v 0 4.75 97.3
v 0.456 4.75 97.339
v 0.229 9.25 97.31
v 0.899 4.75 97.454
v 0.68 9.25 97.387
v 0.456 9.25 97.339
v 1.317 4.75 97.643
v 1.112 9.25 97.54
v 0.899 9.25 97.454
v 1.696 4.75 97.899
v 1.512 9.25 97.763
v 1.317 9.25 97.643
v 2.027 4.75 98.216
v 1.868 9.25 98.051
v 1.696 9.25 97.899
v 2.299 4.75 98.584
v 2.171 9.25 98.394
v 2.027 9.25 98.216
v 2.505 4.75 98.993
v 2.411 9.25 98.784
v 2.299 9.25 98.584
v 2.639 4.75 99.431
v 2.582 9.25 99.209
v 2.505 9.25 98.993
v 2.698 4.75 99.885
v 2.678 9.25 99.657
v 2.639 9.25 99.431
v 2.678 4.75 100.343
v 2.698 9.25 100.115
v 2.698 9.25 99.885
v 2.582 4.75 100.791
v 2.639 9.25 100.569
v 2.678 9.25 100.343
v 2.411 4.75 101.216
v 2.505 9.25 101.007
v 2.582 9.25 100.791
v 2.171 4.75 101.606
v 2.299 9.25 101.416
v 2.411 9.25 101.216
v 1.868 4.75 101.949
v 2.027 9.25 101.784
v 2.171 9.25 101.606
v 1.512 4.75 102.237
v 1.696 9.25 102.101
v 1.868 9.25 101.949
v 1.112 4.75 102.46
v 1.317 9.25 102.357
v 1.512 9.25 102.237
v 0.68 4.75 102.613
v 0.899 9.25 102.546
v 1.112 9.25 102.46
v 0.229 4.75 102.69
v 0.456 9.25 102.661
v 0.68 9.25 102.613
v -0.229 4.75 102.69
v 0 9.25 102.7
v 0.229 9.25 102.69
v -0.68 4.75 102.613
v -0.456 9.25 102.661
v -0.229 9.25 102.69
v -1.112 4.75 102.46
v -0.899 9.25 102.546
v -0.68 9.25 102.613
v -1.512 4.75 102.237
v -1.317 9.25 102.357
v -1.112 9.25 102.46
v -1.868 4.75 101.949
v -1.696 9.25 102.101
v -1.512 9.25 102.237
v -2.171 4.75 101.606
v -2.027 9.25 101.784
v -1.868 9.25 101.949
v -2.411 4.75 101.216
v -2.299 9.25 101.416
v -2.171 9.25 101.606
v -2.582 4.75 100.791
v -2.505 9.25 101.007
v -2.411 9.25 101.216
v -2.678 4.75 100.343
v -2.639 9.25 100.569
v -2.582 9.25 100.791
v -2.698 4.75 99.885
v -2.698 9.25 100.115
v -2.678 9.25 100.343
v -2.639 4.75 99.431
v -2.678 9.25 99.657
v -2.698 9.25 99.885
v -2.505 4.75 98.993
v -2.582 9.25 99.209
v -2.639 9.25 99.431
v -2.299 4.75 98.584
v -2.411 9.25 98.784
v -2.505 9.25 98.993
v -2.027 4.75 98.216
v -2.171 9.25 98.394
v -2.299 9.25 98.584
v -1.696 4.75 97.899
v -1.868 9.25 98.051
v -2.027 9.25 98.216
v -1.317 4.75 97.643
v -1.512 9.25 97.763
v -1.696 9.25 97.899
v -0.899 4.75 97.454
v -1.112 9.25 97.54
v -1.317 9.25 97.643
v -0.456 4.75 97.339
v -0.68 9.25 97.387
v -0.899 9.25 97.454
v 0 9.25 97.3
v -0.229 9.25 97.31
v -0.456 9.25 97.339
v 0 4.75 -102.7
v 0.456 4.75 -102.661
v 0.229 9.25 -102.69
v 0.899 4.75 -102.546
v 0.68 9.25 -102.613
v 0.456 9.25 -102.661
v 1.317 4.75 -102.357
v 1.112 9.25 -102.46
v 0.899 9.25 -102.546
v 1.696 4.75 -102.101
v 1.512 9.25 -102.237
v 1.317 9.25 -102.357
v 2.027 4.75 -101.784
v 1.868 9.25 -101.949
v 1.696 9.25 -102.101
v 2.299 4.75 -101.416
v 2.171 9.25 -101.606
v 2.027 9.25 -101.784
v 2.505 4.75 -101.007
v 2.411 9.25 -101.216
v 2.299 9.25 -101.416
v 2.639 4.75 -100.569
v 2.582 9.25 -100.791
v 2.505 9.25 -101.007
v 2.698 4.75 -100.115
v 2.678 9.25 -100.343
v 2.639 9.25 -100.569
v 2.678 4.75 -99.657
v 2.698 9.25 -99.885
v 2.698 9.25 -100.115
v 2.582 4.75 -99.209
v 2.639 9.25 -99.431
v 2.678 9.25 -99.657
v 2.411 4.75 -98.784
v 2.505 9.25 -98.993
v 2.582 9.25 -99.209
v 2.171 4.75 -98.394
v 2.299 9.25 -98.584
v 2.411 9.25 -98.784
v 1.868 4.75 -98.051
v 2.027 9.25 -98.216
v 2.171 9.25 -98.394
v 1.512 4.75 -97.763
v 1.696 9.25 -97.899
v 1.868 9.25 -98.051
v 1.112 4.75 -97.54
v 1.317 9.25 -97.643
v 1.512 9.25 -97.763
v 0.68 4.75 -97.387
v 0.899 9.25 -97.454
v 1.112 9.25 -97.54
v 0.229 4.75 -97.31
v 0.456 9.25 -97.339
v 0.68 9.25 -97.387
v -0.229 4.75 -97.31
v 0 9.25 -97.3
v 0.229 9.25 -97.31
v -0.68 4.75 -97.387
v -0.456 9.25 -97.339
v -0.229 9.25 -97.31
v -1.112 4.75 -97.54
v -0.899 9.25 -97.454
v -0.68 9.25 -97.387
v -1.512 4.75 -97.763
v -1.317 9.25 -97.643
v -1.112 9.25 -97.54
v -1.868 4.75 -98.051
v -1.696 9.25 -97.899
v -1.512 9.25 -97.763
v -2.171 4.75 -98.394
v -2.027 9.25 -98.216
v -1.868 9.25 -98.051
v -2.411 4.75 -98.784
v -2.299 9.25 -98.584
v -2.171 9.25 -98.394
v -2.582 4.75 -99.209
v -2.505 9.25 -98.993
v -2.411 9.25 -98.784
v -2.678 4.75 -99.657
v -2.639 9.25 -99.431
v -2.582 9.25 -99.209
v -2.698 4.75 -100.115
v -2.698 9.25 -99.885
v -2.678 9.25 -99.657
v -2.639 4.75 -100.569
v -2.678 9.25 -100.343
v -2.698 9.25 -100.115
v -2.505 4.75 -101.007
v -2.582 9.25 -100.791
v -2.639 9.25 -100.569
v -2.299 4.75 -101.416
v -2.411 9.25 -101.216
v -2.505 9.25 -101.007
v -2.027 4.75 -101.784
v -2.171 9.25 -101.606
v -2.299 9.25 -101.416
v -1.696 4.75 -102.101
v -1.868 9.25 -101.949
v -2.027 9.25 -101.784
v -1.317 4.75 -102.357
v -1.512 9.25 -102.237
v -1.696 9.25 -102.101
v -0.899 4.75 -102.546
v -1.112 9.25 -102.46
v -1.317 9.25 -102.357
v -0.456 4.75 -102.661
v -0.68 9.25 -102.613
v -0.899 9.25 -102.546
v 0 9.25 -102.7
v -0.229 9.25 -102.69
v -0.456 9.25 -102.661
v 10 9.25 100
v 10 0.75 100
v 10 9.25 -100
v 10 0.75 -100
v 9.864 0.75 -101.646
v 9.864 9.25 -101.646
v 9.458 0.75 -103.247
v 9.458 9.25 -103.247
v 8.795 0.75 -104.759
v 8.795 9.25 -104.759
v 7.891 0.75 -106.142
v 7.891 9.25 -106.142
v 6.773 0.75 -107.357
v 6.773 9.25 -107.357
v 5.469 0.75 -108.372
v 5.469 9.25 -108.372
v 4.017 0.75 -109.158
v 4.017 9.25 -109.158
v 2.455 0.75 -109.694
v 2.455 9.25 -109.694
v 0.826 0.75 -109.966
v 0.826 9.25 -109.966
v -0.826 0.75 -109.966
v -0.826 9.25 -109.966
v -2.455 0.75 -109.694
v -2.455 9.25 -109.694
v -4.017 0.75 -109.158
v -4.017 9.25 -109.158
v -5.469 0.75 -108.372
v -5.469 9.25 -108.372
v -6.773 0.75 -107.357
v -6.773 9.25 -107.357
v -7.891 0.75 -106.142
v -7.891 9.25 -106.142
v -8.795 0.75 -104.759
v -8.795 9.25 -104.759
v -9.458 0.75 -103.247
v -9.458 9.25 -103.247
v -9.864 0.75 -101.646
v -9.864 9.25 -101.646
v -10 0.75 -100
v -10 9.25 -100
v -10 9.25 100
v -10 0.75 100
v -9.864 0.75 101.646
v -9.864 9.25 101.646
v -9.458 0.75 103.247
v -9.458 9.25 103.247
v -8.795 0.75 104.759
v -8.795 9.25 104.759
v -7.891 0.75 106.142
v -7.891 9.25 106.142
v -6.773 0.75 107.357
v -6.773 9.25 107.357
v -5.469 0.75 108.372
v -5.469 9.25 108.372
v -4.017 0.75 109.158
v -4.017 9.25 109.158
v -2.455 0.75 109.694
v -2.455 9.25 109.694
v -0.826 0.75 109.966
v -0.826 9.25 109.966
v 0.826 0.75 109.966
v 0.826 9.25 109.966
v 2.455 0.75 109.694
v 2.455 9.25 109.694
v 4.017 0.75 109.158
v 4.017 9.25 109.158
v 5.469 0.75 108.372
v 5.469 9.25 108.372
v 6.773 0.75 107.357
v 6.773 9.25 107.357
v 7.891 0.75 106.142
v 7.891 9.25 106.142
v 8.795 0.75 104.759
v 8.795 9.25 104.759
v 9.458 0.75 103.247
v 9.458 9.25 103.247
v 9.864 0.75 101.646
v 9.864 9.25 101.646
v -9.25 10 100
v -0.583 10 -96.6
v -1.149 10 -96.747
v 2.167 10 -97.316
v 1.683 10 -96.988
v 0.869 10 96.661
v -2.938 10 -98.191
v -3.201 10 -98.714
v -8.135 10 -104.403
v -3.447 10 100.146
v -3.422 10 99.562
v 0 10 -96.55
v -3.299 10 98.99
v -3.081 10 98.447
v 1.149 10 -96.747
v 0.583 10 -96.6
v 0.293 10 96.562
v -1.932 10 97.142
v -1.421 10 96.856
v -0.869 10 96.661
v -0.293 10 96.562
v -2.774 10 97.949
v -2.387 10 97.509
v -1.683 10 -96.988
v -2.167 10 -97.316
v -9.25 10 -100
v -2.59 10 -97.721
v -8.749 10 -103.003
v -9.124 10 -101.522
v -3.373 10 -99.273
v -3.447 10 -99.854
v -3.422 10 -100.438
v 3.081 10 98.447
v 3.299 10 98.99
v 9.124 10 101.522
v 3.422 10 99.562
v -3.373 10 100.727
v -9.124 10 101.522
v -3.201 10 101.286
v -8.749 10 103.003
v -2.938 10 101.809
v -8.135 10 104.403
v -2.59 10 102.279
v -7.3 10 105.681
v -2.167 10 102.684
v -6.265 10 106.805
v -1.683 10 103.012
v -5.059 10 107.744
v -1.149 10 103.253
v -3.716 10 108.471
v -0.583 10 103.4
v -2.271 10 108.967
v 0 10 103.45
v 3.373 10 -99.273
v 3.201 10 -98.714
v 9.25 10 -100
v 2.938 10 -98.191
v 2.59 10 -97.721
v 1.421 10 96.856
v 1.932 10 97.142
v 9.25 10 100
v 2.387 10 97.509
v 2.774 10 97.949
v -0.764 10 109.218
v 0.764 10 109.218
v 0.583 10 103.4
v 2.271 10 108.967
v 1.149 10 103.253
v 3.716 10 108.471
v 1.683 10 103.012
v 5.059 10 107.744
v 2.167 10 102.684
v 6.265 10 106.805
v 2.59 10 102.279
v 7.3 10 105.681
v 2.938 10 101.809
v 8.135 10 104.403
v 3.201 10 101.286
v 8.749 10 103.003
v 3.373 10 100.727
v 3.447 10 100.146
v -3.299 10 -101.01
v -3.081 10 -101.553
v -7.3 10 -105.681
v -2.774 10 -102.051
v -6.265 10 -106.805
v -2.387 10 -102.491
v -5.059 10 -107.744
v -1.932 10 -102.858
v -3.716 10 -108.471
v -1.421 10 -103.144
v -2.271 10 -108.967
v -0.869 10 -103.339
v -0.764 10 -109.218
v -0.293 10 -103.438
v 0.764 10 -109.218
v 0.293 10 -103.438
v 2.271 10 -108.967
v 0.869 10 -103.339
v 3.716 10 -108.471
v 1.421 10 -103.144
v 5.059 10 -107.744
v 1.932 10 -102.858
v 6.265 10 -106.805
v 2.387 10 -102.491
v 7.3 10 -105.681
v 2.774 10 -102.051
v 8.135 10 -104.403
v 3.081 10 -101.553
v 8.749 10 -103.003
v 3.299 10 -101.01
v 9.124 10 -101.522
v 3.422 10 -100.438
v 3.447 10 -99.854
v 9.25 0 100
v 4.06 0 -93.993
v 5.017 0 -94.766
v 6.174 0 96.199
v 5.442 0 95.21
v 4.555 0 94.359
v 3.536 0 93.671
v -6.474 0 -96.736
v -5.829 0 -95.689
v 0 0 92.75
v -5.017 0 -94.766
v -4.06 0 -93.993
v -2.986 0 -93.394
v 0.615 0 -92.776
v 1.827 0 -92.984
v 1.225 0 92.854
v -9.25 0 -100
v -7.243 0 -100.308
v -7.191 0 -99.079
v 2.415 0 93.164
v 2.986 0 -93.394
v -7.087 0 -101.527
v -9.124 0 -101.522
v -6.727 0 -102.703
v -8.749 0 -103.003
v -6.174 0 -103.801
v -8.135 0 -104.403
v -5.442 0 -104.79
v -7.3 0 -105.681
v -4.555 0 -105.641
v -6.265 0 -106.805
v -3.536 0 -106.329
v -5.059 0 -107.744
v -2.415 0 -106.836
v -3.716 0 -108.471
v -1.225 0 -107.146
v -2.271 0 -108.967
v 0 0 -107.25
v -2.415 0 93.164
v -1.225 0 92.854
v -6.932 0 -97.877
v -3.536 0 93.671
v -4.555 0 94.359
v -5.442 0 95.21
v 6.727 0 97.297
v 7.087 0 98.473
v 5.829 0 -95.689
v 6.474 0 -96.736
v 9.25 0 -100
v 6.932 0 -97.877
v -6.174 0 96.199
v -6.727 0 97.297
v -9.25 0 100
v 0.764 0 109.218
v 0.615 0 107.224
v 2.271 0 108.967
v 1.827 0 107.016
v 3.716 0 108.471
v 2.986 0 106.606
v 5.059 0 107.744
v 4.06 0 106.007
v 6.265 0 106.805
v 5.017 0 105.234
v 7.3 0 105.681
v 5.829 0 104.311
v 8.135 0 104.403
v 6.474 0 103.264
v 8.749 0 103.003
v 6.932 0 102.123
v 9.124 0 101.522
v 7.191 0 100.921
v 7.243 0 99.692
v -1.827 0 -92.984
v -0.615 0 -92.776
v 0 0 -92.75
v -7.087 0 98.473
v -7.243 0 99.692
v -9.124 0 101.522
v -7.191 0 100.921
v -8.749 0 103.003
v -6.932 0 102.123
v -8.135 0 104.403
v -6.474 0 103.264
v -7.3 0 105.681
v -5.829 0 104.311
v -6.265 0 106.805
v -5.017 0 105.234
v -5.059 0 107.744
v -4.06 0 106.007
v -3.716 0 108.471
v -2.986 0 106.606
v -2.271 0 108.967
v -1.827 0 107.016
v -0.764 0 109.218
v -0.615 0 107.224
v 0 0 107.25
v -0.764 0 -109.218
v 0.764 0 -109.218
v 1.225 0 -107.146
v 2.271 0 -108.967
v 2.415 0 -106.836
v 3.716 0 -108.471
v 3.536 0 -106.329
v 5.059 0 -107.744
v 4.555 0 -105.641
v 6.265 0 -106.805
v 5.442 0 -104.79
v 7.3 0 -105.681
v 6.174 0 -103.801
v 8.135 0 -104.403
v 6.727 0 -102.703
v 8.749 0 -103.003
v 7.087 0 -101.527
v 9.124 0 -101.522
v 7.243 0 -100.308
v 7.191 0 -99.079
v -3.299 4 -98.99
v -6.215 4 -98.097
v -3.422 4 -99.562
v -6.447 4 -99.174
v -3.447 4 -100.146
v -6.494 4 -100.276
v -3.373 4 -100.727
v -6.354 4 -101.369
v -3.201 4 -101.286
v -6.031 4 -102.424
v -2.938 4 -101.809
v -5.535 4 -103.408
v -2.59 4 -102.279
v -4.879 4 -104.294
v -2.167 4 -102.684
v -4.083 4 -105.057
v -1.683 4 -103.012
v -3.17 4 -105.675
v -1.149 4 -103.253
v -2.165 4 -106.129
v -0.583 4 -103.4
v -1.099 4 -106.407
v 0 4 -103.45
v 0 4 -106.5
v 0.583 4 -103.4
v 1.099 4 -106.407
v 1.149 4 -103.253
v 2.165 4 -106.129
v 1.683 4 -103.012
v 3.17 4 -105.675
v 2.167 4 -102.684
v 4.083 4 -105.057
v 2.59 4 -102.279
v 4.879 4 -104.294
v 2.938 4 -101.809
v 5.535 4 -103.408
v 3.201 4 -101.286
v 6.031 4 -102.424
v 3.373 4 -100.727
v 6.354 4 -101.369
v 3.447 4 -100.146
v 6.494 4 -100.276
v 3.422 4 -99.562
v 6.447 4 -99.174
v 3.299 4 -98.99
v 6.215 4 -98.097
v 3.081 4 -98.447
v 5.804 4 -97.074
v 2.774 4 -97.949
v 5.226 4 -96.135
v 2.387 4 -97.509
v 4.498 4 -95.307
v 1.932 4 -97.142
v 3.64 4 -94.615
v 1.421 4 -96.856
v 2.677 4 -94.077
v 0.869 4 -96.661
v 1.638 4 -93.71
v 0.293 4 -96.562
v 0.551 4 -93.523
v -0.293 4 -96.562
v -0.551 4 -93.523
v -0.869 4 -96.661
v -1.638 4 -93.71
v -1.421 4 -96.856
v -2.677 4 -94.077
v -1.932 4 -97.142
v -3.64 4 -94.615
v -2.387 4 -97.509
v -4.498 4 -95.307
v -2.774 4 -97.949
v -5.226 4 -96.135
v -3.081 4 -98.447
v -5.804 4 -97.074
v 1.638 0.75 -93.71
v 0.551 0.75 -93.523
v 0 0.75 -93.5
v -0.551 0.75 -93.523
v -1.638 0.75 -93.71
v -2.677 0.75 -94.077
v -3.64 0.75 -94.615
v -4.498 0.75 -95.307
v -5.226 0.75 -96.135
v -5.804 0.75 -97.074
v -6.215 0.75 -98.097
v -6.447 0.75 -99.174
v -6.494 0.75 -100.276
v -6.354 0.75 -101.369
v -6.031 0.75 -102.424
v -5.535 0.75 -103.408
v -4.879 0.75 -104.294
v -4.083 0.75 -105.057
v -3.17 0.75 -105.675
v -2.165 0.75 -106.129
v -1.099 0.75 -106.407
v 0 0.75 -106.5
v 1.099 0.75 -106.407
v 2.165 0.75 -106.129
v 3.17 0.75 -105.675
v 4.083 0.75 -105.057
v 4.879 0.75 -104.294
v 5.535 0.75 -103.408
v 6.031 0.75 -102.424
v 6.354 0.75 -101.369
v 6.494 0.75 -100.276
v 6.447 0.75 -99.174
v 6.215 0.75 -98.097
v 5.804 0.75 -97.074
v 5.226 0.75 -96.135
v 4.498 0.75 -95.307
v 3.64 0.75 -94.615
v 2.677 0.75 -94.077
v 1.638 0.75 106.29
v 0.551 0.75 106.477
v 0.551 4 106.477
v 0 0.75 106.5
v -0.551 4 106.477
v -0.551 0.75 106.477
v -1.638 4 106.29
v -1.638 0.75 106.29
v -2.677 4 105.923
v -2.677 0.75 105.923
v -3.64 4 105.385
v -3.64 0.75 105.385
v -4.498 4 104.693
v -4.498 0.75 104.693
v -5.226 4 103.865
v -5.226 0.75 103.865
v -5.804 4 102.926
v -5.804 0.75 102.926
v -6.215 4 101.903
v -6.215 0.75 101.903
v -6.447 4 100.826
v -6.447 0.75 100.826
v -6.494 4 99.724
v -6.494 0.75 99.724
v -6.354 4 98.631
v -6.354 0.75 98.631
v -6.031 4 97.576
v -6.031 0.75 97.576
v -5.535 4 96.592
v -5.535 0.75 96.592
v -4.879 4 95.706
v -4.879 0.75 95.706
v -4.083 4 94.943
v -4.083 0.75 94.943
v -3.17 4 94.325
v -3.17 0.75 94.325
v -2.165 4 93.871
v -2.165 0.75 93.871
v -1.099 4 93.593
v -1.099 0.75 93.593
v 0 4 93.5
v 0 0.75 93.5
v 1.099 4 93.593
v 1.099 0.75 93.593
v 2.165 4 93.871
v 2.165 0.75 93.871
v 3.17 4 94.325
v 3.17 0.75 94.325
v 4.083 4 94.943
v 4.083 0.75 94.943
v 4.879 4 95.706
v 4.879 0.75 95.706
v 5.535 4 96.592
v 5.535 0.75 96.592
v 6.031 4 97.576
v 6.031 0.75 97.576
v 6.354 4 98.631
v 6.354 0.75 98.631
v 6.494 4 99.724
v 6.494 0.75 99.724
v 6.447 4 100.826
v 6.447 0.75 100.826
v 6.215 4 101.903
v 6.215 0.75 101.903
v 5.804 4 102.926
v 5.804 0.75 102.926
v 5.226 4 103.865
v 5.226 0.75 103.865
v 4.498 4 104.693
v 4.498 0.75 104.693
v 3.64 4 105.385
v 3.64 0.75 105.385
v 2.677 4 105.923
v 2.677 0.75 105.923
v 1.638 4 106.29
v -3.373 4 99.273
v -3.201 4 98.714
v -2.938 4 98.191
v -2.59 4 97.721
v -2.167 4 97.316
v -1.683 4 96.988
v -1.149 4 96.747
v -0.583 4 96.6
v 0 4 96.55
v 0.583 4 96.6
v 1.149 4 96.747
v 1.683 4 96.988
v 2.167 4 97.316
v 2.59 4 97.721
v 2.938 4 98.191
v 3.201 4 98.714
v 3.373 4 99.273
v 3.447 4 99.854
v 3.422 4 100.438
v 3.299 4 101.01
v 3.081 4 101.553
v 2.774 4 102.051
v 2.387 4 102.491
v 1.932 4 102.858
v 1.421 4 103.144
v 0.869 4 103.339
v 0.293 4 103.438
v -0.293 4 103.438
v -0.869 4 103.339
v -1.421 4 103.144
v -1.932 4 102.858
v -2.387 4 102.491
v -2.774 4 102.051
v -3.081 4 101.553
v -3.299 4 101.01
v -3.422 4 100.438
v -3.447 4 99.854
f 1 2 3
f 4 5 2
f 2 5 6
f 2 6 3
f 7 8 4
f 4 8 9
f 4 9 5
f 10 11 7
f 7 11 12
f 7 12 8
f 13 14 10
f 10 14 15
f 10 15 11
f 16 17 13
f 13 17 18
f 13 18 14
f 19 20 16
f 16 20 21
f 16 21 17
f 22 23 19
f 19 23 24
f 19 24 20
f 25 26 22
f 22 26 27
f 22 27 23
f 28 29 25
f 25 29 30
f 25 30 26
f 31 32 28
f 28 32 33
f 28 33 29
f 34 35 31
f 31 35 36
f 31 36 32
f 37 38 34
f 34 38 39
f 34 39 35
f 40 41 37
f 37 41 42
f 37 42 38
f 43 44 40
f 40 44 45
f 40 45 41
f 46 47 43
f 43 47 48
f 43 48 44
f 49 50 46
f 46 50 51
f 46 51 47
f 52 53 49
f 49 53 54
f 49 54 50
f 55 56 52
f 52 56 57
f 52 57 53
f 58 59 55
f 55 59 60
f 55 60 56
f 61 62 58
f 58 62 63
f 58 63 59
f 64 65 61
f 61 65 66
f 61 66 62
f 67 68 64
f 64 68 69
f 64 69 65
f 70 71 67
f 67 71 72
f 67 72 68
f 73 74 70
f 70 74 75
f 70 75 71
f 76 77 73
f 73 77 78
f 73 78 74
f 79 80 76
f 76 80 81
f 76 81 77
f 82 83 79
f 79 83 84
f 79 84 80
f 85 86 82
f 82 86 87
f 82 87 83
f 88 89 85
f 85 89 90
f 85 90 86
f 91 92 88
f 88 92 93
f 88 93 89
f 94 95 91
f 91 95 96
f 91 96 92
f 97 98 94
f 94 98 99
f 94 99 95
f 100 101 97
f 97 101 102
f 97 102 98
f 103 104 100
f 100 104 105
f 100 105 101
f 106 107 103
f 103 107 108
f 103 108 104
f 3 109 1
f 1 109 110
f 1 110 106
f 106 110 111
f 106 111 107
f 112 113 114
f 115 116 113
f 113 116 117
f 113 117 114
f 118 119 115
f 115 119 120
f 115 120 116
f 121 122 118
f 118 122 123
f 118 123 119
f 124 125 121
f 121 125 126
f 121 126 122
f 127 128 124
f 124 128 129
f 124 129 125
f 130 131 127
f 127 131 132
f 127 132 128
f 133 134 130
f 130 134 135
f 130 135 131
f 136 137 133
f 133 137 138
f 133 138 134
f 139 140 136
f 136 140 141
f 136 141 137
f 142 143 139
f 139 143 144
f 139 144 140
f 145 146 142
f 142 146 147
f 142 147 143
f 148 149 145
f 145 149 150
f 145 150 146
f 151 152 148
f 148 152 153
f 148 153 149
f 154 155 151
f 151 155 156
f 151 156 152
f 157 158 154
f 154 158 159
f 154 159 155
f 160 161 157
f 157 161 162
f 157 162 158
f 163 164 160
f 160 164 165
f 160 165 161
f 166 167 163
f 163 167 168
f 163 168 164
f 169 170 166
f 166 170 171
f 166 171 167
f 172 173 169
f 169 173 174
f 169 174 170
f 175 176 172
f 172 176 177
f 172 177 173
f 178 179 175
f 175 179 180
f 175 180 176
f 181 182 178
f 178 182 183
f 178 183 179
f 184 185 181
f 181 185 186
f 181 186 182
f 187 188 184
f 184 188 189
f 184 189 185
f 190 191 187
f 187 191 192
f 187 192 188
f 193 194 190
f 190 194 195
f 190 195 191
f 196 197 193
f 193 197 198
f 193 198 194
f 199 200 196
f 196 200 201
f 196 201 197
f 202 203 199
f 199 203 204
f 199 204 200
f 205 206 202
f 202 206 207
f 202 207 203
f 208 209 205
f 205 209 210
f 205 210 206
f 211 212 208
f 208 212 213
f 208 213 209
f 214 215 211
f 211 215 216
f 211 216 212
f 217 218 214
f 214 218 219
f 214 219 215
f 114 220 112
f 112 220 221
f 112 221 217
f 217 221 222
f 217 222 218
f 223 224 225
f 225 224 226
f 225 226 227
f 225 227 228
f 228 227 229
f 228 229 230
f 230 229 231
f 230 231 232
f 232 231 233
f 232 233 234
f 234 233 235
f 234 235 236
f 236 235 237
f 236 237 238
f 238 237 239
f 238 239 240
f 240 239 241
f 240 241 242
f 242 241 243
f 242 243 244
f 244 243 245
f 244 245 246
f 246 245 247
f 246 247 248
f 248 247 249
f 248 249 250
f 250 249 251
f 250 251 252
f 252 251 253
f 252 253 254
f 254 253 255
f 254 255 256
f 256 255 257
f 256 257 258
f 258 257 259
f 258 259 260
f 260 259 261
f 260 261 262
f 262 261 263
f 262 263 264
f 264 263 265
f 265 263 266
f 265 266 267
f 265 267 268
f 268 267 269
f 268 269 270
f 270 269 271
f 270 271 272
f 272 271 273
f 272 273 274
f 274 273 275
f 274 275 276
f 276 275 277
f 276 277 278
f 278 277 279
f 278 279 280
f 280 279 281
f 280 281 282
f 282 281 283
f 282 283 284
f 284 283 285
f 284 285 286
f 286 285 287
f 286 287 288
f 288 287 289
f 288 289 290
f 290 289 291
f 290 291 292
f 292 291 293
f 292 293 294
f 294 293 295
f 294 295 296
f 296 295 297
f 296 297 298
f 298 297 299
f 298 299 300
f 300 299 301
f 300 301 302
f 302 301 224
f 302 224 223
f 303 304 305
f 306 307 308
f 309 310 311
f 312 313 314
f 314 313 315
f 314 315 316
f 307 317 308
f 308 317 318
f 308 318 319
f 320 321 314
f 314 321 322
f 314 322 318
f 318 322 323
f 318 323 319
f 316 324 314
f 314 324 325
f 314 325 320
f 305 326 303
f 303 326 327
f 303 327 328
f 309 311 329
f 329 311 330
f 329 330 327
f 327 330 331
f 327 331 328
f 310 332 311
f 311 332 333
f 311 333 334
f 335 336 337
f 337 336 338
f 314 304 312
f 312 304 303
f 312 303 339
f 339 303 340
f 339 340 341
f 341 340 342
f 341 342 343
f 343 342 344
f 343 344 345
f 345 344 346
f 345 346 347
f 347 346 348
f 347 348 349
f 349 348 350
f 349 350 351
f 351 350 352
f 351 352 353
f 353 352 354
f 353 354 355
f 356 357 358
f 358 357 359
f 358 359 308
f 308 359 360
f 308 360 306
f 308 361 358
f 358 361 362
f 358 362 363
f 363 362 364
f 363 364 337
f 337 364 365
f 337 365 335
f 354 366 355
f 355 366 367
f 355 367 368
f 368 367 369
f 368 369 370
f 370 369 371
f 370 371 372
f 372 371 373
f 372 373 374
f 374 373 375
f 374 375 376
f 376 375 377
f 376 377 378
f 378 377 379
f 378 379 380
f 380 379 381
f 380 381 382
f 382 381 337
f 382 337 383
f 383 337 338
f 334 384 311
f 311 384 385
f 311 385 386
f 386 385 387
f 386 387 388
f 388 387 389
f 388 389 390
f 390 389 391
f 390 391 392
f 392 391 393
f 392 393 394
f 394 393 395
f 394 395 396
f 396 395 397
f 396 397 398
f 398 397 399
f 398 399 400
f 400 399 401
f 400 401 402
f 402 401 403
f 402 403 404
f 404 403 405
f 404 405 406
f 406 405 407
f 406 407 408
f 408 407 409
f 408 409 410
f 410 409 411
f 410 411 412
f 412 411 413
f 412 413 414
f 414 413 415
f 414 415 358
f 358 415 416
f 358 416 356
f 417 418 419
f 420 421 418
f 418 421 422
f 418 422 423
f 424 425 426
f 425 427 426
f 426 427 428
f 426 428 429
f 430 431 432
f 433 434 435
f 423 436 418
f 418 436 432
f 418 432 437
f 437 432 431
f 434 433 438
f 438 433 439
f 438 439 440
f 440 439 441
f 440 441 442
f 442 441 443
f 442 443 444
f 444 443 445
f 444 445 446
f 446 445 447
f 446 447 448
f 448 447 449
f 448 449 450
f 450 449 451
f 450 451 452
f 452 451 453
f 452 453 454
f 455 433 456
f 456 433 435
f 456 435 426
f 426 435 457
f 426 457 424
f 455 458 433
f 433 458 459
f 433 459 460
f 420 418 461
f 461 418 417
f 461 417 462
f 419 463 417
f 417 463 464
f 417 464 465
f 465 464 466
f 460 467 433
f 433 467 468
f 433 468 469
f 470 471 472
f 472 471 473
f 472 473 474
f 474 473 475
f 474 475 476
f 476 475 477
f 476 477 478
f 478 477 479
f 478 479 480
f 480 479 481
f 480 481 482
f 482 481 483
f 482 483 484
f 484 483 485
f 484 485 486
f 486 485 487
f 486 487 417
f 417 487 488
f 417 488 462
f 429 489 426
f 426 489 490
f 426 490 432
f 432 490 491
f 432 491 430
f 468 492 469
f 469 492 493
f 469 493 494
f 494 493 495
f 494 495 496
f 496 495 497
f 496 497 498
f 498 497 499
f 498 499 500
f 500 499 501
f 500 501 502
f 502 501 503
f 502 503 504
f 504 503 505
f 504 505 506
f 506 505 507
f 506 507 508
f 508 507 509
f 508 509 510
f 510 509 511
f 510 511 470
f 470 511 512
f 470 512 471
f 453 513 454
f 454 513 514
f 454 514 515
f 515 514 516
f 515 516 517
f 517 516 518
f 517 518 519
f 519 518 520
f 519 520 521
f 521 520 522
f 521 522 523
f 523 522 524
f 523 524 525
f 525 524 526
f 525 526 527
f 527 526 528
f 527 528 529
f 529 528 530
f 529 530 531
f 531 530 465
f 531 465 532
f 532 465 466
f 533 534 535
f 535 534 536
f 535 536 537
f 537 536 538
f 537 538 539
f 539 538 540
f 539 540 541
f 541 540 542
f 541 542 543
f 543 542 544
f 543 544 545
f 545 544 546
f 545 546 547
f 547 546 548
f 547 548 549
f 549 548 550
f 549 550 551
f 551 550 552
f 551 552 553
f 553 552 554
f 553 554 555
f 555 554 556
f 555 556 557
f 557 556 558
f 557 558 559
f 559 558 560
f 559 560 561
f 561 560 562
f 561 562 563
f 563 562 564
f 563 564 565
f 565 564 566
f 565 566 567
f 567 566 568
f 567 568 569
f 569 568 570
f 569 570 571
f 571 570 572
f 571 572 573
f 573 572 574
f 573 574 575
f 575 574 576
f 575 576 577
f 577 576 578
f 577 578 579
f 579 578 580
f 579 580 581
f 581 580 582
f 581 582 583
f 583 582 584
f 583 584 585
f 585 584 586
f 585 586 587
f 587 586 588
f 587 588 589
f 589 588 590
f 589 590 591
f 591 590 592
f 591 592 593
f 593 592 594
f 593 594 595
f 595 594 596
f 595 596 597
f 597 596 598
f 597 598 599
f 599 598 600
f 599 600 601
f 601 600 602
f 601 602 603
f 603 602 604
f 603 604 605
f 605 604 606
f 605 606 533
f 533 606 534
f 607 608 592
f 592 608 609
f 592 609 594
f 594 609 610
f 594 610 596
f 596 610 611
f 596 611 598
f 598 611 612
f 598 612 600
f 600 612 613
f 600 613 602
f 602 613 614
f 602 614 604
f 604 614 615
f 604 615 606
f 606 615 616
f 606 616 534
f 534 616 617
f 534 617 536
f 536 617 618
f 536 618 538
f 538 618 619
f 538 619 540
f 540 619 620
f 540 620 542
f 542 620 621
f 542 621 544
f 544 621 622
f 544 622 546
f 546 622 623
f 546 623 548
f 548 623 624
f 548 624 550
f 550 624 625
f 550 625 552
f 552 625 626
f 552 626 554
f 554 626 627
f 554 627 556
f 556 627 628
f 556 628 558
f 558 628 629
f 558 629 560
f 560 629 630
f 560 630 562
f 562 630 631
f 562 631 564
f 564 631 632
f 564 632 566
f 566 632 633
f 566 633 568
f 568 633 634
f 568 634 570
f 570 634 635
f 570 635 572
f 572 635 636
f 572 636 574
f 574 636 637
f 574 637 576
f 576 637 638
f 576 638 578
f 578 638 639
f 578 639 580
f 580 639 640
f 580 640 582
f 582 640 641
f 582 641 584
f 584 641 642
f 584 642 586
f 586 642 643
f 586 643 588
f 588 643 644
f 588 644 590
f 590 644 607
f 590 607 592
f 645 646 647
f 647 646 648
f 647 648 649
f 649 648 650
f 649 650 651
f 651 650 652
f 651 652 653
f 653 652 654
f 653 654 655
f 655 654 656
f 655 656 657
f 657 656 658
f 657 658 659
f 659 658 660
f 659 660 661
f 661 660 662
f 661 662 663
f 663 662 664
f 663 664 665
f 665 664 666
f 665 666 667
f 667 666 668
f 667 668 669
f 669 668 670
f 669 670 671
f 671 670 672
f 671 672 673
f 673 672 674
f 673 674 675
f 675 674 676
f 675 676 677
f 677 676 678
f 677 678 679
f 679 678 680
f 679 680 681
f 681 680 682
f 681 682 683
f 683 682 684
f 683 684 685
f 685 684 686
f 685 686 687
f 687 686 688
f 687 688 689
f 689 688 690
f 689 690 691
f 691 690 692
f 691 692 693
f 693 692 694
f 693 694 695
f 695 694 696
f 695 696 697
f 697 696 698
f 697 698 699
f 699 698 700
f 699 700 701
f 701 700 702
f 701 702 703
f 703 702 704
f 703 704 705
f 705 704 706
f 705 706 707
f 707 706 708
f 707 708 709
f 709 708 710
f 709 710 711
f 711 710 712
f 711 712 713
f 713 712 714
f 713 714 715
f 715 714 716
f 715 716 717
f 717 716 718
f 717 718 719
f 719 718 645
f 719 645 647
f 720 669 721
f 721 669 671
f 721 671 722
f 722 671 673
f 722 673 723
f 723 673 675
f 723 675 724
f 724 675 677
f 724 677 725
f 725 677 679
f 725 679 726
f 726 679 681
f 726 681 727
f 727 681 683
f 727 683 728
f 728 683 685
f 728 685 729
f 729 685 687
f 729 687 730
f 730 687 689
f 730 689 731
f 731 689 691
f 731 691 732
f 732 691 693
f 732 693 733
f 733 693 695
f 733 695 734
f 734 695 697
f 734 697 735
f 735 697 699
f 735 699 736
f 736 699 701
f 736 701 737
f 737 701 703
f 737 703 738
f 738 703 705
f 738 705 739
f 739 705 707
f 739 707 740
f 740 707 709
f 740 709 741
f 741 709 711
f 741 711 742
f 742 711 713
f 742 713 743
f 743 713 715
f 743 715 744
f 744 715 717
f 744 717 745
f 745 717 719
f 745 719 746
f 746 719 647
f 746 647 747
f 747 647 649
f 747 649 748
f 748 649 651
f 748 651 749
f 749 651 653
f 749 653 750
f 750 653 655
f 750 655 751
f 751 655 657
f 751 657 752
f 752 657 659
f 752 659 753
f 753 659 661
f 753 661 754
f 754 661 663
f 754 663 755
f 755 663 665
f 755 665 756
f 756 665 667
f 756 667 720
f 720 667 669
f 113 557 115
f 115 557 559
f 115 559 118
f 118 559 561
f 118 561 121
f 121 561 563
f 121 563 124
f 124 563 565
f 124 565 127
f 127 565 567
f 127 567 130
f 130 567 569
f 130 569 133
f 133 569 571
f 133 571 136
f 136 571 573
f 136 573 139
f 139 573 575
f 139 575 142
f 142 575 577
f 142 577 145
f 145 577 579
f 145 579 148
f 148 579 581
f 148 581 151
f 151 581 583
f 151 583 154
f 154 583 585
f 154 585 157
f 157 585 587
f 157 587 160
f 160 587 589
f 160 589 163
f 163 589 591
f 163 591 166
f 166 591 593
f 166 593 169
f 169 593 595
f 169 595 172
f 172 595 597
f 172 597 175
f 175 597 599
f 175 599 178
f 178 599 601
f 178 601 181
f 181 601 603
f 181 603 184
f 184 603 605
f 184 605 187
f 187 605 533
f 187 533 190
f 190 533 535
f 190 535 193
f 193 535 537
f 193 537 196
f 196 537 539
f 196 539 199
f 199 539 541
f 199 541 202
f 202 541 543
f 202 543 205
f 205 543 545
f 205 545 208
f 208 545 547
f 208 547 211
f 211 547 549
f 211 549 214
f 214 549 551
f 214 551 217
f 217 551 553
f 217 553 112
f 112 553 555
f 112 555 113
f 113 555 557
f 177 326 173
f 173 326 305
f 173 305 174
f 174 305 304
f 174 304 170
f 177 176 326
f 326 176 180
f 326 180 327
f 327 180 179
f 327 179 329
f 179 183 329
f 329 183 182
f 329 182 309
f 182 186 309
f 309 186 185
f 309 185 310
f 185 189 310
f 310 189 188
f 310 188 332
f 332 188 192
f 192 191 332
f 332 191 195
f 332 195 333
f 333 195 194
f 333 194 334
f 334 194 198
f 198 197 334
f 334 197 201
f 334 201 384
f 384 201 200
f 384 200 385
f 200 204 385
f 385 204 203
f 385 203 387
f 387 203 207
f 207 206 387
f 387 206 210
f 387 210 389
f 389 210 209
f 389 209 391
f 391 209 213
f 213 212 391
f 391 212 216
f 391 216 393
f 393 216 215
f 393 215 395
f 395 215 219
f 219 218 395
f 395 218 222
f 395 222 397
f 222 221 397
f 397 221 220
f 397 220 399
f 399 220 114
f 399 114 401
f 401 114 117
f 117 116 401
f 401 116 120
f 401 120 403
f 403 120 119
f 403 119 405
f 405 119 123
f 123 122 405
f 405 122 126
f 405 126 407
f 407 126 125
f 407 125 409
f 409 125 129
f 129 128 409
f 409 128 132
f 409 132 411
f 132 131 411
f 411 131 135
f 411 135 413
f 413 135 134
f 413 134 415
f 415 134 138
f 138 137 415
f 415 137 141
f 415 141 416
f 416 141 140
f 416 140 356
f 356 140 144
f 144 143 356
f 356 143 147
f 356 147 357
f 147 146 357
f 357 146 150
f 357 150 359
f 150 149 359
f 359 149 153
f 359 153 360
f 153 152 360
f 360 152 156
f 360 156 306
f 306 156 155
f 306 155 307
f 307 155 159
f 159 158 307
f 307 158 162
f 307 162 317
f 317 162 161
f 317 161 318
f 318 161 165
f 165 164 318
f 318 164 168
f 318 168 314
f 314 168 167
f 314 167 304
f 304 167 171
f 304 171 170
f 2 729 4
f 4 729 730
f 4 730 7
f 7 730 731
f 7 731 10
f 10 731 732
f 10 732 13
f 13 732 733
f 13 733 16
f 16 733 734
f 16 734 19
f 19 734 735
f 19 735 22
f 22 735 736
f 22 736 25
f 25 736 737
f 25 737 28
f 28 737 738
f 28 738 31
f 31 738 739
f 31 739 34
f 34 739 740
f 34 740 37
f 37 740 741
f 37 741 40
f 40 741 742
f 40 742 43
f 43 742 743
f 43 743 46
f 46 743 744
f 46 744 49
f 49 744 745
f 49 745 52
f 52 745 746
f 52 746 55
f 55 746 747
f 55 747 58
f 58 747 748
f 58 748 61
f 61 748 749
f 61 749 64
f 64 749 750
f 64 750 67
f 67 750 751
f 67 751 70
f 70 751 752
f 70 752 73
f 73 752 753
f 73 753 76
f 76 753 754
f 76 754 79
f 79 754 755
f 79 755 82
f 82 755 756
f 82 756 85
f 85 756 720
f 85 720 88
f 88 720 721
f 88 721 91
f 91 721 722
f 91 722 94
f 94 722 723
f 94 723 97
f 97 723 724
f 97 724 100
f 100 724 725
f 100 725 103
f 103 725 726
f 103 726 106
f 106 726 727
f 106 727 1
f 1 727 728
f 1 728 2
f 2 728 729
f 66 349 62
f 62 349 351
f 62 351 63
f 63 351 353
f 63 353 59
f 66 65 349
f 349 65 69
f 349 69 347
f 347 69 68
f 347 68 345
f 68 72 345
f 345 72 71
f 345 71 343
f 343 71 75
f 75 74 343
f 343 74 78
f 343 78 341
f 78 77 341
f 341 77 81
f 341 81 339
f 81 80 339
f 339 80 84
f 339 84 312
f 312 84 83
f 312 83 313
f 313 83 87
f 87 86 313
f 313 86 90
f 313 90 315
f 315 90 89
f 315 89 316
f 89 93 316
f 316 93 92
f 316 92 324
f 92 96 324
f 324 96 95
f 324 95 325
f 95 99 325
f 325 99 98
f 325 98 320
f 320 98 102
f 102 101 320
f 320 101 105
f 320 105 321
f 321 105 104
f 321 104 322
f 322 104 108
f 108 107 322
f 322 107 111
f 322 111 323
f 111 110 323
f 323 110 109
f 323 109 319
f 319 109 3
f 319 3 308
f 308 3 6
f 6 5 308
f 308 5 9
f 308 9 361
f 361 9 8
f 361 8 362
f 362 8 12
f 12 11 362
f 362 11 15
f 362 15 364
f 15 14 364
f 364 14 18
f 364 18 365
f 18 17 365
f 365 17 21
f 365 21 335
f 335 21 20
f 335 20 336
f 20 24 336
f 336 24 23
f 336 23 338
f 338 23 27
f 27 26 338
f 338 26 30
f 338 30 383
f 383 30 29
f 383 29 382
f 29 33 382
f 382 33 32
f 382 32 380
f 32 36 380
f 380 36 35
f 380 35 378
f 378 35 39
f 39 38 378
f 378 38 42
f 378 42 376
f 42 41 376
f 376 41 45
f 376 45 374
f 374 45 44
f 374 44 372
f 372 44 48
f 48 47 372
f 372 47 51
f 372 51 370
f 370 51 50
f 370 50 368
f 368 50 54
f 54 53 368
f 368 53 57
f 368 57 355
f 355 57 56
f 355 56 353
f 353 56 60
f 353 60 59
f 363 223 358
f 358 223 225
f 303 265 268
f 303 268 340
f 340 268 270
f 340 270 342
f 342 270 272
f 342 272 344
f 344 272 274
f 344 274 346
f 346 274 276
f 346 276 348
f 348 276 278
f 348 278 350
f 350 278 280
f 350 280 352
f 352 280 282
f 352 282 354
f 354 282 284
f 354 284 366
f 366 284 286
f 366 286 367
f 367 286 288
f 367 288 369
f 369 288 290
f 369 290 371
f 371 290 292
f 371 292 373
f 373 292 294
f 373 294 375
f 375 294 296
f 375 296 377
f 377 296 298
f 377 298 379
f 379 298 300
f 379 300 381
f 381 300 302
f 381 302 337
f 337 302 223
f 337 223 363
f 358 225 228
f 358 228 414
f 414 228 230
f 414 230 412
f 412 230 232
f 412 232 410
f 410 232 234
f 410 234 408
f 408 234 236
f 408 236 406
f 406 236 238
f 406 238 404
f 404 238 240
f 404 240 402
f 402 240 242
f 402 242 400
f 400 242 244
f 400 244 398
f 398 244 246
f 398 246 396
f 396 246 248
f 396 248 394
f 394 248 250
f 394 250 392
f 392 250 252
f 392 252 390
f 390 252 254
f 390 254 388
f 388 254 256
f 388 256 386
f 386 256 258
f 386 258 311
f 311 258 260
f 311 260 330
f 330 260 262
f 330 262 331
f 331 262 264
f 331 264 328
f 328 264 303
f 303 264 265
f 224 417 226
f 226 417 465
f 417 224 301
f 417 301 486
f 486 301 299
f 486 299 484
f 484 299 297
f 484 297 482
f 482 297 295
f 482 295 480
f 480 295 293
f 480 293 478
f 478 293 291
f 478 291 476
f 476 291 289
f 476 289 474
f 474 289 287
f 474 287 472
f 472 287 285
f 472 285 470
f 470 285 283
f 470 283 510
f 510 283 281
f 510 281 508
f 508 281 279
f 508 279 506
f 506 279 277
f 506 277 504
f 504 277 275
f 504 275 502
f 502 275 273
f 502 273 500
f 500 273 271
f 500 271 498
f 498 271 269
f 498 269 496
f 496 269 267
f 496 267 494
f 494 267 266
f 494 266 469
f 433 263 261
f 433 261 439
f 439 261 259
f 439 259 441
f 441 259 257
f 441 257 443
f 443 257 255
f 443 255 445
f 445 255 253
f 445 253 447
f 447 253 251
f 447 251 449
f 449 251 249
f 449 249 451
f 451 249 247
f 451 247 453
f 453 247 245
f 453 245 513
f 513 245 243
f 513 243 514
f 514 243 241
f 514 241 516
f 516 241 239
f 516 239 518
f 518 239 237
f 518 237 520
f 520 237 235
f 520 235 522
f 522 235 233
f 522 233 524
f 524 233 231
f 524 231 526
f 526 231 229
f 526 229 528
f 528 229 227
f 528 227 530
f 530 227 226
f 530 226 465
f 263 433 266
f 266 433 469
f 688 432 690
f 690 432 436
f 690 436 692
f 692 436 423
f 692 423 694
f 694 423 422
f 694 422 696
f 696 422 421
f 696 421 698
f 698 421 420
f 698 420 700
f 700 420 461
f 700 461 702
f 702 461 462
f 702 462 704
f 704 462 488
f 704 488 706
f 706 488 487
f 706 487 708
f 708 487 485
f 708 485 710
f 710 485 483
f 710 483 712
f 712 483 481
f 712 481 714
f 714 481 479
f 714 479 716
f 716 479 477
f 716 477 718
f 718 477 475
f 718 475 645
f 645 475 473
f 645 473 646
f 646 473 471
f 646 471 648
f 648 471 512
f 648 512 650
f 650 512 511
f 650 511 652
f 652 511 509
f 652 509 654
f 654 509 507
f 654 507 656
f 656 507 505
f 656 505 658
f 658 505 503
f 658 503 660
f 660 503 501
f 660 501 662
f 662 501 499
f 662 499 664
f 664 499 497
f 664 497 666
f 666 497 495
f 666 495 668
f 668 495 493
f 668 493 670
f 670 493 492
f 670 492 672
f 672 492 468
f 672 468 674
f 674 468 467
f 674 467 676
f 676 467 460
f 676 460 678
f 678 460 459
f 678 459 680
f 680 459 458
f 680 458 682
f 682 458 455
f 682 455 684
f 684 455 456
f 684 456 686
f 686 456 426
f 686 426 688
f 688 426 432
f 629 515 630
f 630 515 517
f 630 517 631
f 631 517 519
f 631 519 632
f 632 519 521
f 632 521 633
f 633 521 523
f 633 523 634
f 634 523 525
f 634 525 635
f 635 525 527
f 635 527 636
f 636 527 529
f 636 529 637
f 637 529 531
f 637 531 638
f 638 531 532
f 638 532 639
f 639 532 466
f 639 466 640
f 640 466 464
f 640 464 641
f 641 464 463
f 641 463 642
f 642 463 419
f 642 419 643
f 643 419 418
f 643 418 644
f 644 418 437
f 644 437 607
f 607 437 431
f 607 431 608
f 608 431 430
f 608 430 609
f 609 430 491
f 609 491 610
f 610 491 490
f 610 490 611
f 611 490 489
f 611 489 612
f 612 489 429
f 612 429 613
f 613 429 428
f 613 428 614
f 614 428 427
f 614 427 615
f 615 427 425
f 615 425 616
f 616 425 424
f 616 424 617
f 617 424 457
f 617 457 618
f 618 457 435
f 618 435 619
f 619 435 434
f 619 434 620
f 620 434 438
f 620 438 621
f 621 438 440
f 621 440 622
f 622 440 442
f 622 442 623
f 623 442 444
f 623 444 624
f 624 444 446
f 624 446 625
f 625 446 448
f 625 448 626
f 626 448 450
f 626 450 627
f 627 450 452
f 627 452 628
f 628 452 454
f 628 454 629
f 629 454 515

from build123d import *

# Parameters (mm, degrees)
SKETCH1_R           = 2.7
BOSS_EXTRUDE1_DEPTH = 10
SKETCH2_R           = 6.5
CUT_EXTRUDE1_DEPTH  = 4
CHAMFER1_SIZE       = 0.75


with BuildPart() as part:
    # Sketch1 → Boss-Extrude1 (new body)
    with BuildSketch(Plane(origin=(0, 0, 0), x_dir=(1, 0, 0), z_dir=(0, 1, 0))):
        with BuildLine():
            Line((10, -100), (10, 100))
            ThreePointArc((10, 100), (0, 110), (-10, 100))
            Line((-10, 100), (-10, -100))
            ThreePointArc((-10, -100), (0, -110), (10, -100))
        make_face()
        with Locations(Location((0, -100, 0), (0, 0, 270))):
            Circle(SKETCH1_R, mode=Mode.SUBTRACT)
        with Locations(Location((0, 100, 0), (0, 0, 270))):
            Circle(SKETCH1_R, mode=Mode.SUBTRACT)
    extrude(amount=BOSS_EXTRUDE1_DEPTH)

    # Sketch2 → Cut-Extrude1 (cut)
    with BuildSketch(Plane.XZ):
        with Locations(Location((0, 100, 0), (0, 0, 270))):
            Circle(SKETCH2_R)
        with Locations(Location((0, -100, 0), (0, 0, 270))):
            Circle(SKETCH2_R)
    extrude(amount=-CUT_EXTRUDE1_DEPTH, mode=Mode.SUBTRACT)

    # Chamfer1
    chamfer1_edges = [part.edges().sort_by_distance(p)[0] for p in [
        (0, 10, 97.3),
        (10, 10, 0),
        (0, 10, -110),
        (0, 4, 97.3),
        (0, 0, 106.5),
        (0, 0, -93.5),
        (0, 4, -102.7),
        (-10, 10, 0),
        (0, 10, 110),
        (0, 10, -102.7),
        (0, 0, 110),
        (-10, 0, 0),
        (0, 0, -110),
        (10, 0, 0),
    ]]
    chamfer(chamfer1_edges, length=CHAMFER1_SIZE)


solid = part.part
